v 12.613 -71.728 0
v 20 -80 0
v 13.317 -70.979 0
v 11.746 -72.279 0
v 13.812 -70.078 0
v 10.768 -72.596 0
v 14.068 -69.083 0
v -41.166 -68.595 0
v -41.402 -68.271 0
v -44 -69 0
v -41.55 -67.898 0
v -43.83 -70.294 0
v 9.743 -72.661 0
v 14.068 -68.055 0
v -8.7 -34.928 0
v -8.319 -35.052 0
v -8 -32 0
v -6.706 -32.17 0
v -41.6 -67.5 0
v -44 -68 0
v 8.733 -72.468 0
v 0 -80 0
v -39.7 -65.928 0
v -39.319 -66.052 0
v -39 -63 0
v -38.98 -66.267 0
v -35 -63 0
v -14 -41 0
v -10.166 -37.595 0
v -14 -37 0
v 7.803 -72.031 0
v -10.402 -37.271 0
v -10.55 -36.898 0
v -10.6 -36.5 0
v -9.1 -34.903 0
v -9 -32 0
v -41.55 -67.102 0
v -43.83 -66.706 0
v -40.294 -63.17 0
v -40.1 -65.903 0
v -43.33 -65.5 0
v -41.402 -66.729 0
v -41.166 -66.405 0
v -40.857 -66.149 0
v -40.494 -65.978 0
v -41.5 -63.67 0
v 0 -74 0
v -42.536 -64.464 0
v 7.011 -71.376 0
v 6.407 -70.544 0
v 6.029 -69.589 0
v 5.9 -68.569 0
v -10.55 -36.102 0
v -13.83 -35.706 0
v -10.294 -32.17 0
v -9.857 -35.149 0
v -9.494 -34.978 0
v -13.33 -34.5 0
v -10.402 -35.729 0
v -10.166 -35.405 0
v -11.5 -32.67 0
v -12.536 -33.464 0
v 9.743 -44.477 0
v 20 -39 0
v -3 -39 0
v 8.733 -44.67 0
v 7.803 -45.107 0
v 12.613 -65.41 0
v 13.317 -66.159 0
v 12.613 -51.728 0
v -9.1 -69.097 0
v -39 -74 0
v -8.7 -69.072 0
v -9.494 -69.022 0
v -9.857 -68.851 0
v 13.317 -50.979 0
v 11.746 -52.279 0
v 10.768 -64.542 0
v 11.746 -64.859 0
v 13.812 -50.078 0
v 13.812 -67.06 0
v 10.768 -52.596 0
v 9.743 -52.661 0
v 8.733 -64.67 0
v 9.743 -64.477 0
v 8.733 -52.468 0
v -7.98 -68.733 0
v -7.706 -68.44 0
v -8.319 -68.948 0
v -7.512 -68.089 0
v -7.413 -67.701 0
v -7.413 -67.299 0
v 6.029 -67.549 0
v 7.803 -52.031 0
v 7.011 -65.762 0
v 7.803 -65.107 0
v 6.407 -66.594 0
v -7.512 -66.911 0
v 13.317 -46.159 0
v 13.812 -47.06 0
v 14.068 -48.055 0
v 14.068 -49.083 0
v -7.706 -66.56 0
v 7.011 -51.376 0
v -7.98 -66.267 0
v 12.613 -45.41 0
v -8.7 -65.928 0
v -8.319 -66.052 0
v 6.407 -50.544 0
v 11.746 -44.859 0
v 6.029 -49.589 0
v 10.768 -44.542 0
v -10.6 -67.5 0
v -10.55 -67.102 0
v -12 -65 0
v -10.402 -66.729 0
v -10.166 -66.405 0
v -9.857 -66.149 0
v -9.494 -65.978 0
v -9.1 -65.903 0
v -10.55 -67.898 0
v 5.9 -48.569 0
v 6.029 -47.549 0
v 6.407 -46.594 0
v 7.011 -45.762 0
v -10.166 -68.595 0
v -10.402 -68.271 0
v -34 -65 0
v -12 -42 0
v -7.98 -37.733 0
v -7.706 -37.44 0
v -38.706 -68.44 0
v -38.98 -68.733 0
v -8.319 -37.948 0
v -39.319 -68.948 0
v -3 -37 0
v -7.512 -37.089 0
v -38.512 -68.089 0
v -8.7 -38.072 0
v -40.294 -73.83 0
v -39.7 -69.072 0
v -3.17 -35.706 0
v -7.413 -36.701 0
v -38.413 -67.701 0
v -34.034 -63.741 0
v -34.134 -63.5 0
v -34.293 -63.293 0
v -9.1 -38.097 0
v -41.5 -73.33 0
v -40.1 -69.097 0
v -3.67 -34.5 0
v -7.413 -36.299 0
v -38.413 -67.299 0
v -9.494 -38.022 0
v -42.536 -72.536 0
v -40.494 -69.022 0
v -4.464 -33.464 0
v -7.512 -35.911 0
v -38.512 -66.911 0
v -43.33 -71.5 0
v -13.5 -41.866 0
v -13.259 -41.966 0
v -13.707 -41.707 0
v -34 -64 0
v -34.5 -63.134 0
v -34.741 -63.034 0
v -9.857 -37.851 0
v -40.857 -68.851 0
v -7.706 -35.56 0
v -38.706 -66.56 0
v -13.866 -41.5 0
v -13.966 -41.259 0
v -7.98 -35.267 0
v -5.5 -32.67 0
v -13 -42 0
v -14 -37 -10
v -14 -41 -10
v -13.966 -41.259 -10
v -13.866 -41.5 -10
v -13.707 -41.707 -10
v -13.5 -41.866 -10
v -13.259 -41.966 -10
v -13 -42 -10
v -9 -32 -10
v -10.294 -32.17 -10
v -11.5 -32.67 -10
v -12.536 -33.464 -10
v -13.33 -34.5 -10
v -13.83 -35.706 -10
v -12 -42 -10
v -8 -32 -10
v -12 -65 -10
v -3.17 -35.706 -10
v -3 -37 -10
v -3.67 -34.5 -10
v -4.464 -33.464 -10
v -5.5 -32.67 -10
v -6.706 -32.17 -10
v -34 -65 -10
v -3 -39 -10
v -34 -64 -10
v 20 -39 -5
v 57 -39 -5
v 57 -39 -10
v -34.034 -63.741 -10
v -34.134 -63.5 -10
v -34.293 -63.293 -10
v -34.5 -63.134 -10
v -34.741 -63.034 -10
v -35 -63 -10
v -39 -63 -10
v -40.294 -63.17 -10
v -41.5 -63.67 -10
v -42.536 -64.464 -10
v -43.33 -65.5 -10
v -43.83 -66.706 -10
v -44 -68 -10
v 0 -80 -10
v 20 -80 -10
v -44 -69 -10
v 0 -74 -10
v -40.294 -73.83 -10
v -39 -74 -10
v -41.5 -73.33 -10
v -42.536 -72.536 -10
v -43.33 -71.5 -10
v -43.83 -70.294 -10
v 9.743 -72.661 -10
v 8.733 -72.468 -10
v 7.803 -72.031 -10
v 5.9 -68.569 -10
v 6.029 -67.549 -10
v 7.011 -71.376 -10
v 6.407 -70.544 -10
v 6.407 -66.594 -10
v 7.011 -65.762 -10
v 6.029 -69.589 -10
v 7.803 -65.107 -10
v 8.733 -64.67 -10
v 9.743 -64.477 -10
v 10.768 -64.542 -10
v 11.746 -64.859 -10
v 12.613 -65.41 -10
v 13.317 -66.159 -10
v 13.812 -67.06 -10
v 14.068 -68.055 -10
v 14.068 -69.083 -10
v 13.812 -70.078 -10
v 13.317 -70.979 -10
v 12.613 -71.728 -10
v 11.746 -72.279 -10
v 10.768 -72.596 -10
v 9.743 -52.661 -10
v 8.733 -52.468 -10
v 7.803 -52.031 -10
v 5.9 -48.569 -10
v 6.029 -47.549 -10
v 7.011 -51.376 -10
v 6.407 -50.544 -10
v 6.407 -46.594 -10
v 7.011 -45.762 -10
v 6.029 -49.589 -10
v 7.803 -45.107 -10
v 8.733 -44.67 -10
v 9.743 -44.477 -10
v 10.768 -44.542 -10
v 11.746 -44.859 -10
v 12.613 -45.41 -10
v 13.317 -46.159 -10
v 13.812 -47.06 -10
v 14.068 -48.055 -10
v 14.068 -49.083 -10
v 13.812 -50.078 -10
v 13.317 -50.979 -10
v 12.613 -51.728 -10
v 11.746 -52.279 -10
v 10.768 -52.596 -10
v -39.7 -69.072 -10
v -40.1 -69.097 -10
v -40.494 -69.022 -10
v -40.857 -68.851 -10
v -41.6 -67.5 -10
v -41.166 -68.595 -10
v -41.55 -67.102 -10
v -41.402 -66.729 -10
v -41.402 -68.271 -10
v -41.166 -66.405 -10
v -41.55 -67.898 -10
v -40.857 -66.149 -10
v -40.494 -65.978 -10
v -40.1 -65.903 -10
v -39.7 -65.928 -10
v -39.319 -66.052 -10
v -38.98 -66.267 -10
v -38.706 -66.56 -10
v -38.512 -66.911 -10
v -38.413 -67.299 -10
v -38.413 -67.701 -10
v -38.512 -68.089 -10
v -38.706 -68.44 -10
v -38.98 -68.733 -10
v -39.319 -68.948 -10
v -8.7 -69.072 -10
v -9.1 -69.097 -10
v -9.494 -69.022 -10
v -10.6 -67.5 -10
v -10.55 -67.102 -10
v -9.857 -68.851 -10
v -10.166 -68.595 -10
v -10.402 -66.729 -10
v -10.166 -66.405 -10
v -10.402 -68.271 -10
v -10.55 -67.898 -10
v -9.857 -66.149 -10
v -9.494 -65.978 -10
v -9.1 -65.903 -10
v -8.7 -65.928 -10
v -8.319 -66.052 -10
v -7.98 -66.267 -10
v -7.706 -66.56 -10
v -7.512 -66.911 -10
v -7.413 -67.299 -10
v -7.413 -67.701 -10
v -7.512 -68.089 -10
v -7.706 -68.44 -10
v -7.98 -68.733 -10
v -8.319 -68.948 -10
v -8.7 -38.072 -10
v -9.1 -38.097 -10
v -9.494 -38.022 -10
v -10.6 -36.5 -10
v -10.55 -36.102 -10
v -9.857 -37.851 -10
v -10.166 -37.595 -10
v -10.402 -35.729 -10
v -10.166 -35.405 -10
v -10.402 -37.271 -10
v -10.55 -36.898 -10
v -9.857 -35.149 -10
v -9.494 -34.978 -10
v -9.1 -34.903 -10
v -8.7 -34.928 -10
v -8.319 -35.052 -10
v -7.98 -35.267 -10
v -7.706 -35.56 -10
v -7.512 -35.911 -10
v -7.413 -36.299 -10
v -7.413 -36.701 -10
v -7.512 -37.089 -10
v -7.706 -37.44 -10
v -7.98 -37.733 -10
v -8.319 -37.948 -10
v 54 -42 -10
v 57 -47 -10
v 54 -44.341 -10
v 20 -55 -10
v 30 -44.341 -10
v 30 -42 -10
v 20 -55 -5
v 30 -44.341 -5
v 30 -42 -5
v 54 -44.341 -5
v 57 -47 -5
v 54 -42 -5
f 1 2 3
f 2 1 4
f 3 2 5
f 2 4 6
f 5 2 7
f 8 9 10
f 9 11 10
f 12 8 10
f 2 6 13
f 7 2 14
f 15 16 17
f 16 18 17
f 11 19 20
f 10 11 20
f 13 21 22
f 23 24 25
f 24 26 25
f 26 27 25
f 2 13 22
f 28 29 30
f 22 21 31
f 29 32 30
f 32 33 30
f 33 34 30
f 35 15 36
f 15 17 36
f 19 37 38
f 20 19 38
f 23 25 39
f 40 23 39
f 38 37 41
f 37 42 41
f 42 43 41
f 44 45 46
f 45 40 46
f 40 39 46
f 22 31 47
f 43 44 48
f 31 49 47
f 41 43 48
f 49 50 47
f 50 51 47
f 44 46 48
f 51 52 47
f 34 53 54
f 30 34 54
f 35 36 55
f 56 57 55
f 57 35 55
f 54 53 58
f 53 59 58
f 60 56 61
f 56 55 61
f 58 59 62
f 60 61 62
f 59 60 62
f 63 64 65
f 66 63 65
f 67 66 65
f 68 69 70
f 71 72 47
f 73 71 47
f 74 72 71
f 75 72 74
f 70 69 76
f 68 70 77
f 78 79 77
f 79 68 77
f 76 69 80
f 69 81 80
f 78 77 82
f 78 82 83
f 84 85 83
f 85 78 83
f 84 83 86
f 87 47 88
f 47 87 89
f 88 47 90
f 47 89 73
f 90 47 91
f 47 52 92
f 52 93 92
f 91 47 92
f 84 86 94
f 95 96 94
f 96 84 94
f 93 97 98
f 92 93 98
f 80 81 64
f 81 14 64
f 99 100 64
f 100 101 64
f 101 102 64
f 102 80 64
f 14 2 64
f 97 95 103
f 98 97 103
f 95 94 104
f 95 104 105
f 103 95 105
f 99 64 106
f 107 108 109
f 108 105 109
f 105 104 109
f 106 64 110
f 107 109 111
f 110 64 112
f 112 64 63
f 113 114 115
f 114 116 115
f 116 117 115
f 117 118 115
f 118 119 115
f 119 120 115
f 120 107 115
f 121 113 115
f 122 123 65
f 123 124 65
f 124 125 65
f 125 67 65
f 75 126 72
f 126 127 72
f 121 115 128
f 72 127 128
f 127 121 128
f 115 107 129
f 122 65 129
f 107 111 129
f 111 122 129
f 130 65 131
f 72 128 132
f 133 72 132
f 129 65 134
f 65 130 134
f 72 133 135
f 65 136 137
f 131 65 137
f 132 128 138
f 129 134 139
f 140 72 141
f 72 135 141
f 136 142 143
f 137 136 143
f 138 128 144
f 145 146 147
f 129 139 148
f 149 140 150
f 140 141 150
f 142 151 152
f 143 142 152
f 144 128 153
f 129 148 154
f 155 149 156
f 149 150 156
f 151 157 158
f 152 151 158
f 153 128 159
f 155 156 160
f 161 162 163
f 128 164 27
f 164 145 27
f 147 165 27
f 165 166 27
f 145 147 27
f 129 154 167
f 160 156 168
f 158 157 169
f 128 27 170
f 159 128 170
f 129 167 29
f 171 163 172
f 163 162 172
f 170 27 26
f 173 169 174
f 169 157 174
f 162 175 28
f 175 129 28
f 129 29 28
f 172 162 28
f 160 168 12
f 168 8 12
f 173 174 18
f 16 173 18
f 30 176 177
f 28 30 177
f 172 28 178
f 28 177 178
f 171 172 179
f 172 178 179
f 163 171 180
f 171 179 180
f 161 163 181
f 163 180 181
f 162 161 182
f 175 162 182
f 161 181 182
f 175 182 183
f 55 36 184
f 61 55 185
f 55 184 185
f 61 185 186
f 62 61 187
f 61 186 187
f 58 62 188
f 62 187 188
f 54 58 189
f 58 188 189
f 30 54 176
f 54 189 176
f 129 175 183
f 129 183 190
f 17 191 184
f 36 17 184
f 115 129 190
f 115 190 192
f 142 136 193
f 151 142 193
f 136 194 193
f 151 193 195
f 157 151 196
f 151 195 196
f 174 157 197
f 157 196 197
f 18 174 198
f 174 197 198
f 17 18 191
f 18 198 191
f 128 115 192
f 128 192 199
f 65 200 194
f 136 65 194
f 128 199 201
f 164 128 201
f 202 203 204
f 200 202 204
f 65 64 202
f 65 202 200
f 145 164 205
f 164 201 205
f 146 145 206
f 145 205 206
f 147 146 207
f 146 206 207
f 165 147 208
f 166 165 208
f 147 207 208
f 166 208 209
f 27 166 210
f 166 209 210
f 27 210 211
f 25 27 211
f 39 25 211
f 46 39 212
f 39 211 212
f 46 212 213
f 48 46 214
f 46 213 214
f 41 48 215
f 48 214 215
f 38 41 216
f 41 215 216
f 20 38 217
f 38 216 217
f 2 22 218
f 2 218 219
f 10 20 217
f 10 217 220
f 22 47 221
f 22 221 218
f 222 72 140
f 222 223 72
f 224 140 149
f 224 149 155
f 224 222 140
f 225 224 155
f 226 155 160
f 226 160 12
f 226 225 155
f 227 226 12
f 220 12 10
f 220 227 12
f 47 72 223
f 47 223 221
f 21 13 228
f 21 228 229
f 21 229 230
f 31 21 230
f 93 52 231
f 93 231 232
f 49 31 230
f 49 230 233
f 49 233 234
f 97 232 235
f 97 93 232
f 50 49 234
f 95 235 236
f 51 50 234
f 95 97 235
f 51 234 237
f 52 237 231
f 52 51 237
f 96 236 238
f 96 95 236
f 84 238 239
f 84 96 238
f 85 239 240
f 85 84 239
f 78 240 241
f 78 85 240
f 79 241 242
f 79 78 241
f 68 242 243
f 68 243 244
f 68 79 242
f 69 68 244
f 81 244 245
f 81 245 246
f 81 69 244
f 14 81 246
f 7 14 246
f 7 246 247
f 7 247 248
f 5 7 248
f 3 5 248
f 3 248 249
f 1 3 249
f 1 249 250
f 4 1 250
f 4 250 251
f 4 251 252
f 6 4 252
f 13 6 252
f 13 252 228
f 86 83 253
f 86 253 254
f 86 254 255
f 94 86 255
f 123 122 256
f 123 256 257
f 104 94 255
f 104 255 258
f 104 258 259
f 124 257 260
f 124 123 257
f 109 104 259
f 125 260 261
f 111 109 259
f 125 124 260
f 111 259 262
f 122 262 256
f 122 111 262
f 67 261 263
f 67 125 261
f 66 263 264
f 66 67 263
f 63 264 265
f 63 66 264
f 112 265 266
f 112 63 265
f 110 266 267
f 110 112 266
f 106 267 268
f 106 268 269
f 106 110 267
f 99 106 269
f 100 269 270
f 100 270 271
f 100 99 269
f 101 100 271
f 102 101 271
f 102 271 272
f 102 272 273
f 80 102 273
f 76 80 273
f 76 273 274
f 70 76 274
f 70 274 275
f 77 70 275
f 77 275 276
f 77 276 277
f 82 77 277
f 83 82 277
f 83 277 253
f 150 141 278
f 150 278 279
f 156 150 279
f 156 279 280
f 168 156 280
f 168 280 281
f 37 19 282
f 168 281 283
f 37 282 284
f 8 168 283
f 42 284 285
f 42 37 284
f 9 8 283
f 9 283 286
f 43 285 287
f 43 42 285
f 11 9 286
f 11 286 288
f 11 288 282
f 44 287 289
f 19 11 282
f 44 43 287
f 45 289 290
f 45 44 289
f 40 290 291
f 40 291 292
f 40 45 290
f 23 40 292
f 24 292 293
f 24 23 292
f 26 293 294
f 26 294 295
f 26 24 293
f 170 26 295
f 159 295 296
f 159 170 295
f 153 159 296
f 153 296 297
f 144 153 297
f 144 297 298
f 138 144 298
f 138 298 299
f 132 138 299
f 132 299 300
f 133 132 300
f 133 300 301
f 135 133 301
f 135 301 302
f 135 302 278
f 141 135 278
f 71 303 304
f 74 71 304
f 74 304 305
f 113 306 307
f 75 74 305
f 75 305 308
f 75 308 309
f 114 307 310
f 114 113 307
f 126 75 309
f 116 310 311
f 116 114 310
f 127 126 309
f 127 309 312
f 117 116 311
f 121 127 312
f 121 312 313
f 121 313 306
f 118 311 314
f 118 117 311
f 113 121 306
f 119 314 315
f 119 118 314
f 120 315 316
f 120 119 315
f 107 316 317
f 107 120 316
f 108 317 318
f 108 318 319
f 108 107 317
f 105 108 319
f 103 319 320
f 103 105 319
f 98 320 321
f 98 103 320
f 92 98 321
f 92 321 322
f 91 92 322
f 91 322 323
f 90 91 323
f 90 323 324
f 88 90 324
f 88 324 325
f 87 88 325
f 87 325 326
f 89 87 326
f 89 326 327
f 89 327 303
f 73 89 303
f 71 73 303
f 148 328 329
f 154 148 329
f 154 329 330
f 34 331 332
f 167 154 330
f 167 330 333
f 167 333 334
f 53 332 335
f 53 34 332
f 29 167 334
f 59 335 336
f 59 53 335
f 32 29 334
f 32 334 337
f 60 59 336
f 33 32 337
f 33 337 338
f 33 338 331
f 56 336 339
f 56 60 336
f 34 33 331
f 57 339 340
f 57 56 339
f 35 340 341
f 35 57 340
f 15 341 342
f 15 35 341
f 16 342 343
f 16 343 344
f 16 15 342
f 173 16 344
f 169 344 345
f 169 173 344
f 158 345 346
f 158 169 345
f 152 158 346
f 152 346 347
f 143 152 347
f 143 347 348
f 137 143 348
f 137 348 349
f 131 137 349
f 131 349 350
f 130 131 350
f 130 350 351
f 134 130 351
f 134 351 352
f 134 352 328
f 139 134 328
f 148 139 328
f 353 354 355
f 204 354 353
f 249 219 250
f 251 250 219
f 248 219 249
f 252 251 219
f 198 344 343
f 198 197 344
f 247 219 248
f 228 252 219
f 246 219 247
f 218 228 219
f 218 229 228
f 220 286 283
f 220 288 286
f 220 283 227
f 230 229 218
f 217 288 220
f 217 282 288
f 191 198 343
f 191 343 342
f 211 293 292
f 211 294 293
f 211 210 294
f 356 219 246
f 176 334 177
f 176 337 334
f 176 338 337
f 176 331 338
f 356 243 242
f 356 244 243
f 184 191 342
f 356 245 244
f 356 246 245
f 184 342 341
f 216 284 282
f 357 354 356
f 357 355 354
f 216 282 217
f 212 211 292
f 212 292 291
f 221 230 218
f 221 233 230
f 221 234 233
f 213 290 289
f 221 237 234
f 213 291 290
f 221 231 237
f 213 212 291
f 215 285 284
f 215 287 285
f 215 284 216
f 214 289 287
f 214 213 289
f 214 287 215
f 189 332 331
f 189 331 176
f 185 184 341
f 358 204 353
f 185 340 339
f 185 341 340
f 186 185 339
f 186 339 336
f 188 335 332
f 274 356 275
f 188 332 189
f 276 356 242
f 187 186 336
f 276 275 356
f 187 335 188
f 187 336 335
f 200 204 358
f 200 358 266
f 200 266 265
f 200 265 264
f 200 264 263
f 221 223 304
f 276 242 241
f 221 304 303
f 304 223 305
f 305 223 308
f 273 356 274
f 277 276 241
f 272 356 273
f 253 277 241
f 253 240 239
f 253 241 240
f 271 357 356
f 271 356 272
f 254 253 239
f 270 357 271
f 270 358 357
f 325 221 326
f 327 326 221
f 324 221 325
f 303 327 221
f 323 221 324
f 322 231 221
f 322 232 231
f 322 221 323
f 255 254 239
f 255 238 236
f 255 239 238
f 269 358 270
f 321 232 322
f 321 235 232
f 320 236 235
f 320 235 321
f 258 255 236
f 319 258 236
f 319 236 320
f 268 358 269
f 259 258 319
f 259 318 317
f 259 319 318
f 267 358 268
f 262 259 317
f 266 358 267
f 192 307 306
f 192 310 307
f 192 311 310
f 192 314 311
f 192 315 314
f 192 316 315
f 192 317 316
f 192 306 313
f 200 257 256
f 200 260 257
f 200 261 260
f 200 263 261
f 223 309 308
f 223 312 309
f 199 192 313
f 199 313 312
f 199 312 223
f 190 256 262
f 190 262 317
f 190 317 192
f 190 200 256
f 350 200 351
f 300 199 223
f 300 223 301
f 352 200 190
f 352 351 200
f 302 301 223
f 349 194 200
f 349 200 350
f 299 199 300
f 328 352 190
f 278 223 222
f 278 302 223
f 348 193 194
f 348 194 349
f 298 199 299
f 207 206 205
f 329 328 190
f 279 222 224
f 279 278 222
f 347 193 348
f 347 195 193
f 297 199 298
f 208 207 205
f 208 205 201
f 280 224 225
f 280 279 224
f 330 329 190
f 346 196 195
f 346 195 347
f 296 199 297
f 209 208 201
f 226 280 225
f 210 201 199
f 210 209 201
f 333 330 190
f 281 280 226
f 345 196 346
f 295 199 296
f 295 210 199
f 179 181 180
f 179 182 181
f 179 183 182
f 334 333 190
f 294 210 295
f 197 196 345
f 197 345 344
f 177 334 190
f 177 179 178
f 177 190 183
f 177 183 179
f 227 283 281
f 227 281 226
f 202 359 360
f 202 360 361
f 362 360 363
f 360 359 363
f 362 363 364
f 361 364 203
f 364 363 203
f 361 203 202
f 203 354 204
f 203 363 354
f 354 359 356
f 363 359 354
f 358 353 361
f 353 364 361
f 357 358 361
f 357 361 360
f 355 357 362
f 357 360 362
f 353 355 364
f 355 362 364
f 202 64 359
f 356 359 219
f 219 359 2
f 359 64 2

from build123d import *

# Parameters (mm, degrees)
SKETCH_R     = 4.1
SKETCH_R_2   = 1.6
SKETCH_W     = 24
SKETCH_H     = 2.341385
PAD_DEPTH    = 10
SKETCH001_W  = 16
SKETCH001_H  = 5
POCKET_DEPTH = 37
FILLET_R     = 5
FILLET001_R  = 1


with BuildPart() as part:
    # Sketch → Pad (new body)
    with BuildSketch(Plane(origin=(0, -80, 0), x_dir=(-1, 0, 0), z_dir=(0, 0, -1))):
        Polygon((0, 0), (-20, 0), (-20, 25), (-57, 33), (-57, 41), (3, 41), (3, 48), (14, 48), (14, 38), (12, 38), (12, 15), (34, 15), (34, 17), (44, 17), (44, 6), (0, 6), align=None)
        with Locations((-10, 11.430889)):
            Circle(SKETCH_R, mode=Mode.SUBTRACT)
        with Locations((-10, 31.430889)):
            Circle(SKETCH_R, mode=Mode.SUBTRACT)
        with Locations((9, 43.5)):
            Circle(SKETCH_R_2, mode=Mode.SUBTRACT)
        with Locations((9, 12.5)):
            Circle(SKETCH_R_2, mode=Mode.SUBTRACT)
        with Locations((40, 12.5)):
            Circle(SKETCH_R_2, mode=Mode.SUBTRACT)
        with Locations((-42, 36.829307)):
            Rectangle(SKETCH_W, SKETCH_H, mode=Mode.SUBTRACT)
    extrude(amount=PAD_DEPTH)

    # Sketch001 → Pocket (cut)
    with BuildSketch(Plane(origin=(57, -80, 0), x_dir=(0, -1, 0), z_dir=(1, 0, 0))):
        with Locations((-33, 2.5)):
            Rectangle(SKETCH001_W, SKETCH001_H)
    extrude(amount=-POCKET_DEPTH, mode=Mode.SUBTRACT)

    # Fillet
    fillet_edges = [part.edges().sort_by_distance(p)[0] for p in [
        (-44, -74, -5),
        (-44, -63, -5),
        (-14, -32, -5),
        (-3, -32, -5),
    ]]
    fillet(fillet_edges, radius=FILLET_R)

    # Fillet001
    fillet001_edges = [part.edges().sort_by_distance(p)[0] for p in [
        (-34, -63, -5),
        (-14, -42, -5),
    ]]
    fillet(fillet001_edges, radius=FILLET001_R)


solid = part.part
